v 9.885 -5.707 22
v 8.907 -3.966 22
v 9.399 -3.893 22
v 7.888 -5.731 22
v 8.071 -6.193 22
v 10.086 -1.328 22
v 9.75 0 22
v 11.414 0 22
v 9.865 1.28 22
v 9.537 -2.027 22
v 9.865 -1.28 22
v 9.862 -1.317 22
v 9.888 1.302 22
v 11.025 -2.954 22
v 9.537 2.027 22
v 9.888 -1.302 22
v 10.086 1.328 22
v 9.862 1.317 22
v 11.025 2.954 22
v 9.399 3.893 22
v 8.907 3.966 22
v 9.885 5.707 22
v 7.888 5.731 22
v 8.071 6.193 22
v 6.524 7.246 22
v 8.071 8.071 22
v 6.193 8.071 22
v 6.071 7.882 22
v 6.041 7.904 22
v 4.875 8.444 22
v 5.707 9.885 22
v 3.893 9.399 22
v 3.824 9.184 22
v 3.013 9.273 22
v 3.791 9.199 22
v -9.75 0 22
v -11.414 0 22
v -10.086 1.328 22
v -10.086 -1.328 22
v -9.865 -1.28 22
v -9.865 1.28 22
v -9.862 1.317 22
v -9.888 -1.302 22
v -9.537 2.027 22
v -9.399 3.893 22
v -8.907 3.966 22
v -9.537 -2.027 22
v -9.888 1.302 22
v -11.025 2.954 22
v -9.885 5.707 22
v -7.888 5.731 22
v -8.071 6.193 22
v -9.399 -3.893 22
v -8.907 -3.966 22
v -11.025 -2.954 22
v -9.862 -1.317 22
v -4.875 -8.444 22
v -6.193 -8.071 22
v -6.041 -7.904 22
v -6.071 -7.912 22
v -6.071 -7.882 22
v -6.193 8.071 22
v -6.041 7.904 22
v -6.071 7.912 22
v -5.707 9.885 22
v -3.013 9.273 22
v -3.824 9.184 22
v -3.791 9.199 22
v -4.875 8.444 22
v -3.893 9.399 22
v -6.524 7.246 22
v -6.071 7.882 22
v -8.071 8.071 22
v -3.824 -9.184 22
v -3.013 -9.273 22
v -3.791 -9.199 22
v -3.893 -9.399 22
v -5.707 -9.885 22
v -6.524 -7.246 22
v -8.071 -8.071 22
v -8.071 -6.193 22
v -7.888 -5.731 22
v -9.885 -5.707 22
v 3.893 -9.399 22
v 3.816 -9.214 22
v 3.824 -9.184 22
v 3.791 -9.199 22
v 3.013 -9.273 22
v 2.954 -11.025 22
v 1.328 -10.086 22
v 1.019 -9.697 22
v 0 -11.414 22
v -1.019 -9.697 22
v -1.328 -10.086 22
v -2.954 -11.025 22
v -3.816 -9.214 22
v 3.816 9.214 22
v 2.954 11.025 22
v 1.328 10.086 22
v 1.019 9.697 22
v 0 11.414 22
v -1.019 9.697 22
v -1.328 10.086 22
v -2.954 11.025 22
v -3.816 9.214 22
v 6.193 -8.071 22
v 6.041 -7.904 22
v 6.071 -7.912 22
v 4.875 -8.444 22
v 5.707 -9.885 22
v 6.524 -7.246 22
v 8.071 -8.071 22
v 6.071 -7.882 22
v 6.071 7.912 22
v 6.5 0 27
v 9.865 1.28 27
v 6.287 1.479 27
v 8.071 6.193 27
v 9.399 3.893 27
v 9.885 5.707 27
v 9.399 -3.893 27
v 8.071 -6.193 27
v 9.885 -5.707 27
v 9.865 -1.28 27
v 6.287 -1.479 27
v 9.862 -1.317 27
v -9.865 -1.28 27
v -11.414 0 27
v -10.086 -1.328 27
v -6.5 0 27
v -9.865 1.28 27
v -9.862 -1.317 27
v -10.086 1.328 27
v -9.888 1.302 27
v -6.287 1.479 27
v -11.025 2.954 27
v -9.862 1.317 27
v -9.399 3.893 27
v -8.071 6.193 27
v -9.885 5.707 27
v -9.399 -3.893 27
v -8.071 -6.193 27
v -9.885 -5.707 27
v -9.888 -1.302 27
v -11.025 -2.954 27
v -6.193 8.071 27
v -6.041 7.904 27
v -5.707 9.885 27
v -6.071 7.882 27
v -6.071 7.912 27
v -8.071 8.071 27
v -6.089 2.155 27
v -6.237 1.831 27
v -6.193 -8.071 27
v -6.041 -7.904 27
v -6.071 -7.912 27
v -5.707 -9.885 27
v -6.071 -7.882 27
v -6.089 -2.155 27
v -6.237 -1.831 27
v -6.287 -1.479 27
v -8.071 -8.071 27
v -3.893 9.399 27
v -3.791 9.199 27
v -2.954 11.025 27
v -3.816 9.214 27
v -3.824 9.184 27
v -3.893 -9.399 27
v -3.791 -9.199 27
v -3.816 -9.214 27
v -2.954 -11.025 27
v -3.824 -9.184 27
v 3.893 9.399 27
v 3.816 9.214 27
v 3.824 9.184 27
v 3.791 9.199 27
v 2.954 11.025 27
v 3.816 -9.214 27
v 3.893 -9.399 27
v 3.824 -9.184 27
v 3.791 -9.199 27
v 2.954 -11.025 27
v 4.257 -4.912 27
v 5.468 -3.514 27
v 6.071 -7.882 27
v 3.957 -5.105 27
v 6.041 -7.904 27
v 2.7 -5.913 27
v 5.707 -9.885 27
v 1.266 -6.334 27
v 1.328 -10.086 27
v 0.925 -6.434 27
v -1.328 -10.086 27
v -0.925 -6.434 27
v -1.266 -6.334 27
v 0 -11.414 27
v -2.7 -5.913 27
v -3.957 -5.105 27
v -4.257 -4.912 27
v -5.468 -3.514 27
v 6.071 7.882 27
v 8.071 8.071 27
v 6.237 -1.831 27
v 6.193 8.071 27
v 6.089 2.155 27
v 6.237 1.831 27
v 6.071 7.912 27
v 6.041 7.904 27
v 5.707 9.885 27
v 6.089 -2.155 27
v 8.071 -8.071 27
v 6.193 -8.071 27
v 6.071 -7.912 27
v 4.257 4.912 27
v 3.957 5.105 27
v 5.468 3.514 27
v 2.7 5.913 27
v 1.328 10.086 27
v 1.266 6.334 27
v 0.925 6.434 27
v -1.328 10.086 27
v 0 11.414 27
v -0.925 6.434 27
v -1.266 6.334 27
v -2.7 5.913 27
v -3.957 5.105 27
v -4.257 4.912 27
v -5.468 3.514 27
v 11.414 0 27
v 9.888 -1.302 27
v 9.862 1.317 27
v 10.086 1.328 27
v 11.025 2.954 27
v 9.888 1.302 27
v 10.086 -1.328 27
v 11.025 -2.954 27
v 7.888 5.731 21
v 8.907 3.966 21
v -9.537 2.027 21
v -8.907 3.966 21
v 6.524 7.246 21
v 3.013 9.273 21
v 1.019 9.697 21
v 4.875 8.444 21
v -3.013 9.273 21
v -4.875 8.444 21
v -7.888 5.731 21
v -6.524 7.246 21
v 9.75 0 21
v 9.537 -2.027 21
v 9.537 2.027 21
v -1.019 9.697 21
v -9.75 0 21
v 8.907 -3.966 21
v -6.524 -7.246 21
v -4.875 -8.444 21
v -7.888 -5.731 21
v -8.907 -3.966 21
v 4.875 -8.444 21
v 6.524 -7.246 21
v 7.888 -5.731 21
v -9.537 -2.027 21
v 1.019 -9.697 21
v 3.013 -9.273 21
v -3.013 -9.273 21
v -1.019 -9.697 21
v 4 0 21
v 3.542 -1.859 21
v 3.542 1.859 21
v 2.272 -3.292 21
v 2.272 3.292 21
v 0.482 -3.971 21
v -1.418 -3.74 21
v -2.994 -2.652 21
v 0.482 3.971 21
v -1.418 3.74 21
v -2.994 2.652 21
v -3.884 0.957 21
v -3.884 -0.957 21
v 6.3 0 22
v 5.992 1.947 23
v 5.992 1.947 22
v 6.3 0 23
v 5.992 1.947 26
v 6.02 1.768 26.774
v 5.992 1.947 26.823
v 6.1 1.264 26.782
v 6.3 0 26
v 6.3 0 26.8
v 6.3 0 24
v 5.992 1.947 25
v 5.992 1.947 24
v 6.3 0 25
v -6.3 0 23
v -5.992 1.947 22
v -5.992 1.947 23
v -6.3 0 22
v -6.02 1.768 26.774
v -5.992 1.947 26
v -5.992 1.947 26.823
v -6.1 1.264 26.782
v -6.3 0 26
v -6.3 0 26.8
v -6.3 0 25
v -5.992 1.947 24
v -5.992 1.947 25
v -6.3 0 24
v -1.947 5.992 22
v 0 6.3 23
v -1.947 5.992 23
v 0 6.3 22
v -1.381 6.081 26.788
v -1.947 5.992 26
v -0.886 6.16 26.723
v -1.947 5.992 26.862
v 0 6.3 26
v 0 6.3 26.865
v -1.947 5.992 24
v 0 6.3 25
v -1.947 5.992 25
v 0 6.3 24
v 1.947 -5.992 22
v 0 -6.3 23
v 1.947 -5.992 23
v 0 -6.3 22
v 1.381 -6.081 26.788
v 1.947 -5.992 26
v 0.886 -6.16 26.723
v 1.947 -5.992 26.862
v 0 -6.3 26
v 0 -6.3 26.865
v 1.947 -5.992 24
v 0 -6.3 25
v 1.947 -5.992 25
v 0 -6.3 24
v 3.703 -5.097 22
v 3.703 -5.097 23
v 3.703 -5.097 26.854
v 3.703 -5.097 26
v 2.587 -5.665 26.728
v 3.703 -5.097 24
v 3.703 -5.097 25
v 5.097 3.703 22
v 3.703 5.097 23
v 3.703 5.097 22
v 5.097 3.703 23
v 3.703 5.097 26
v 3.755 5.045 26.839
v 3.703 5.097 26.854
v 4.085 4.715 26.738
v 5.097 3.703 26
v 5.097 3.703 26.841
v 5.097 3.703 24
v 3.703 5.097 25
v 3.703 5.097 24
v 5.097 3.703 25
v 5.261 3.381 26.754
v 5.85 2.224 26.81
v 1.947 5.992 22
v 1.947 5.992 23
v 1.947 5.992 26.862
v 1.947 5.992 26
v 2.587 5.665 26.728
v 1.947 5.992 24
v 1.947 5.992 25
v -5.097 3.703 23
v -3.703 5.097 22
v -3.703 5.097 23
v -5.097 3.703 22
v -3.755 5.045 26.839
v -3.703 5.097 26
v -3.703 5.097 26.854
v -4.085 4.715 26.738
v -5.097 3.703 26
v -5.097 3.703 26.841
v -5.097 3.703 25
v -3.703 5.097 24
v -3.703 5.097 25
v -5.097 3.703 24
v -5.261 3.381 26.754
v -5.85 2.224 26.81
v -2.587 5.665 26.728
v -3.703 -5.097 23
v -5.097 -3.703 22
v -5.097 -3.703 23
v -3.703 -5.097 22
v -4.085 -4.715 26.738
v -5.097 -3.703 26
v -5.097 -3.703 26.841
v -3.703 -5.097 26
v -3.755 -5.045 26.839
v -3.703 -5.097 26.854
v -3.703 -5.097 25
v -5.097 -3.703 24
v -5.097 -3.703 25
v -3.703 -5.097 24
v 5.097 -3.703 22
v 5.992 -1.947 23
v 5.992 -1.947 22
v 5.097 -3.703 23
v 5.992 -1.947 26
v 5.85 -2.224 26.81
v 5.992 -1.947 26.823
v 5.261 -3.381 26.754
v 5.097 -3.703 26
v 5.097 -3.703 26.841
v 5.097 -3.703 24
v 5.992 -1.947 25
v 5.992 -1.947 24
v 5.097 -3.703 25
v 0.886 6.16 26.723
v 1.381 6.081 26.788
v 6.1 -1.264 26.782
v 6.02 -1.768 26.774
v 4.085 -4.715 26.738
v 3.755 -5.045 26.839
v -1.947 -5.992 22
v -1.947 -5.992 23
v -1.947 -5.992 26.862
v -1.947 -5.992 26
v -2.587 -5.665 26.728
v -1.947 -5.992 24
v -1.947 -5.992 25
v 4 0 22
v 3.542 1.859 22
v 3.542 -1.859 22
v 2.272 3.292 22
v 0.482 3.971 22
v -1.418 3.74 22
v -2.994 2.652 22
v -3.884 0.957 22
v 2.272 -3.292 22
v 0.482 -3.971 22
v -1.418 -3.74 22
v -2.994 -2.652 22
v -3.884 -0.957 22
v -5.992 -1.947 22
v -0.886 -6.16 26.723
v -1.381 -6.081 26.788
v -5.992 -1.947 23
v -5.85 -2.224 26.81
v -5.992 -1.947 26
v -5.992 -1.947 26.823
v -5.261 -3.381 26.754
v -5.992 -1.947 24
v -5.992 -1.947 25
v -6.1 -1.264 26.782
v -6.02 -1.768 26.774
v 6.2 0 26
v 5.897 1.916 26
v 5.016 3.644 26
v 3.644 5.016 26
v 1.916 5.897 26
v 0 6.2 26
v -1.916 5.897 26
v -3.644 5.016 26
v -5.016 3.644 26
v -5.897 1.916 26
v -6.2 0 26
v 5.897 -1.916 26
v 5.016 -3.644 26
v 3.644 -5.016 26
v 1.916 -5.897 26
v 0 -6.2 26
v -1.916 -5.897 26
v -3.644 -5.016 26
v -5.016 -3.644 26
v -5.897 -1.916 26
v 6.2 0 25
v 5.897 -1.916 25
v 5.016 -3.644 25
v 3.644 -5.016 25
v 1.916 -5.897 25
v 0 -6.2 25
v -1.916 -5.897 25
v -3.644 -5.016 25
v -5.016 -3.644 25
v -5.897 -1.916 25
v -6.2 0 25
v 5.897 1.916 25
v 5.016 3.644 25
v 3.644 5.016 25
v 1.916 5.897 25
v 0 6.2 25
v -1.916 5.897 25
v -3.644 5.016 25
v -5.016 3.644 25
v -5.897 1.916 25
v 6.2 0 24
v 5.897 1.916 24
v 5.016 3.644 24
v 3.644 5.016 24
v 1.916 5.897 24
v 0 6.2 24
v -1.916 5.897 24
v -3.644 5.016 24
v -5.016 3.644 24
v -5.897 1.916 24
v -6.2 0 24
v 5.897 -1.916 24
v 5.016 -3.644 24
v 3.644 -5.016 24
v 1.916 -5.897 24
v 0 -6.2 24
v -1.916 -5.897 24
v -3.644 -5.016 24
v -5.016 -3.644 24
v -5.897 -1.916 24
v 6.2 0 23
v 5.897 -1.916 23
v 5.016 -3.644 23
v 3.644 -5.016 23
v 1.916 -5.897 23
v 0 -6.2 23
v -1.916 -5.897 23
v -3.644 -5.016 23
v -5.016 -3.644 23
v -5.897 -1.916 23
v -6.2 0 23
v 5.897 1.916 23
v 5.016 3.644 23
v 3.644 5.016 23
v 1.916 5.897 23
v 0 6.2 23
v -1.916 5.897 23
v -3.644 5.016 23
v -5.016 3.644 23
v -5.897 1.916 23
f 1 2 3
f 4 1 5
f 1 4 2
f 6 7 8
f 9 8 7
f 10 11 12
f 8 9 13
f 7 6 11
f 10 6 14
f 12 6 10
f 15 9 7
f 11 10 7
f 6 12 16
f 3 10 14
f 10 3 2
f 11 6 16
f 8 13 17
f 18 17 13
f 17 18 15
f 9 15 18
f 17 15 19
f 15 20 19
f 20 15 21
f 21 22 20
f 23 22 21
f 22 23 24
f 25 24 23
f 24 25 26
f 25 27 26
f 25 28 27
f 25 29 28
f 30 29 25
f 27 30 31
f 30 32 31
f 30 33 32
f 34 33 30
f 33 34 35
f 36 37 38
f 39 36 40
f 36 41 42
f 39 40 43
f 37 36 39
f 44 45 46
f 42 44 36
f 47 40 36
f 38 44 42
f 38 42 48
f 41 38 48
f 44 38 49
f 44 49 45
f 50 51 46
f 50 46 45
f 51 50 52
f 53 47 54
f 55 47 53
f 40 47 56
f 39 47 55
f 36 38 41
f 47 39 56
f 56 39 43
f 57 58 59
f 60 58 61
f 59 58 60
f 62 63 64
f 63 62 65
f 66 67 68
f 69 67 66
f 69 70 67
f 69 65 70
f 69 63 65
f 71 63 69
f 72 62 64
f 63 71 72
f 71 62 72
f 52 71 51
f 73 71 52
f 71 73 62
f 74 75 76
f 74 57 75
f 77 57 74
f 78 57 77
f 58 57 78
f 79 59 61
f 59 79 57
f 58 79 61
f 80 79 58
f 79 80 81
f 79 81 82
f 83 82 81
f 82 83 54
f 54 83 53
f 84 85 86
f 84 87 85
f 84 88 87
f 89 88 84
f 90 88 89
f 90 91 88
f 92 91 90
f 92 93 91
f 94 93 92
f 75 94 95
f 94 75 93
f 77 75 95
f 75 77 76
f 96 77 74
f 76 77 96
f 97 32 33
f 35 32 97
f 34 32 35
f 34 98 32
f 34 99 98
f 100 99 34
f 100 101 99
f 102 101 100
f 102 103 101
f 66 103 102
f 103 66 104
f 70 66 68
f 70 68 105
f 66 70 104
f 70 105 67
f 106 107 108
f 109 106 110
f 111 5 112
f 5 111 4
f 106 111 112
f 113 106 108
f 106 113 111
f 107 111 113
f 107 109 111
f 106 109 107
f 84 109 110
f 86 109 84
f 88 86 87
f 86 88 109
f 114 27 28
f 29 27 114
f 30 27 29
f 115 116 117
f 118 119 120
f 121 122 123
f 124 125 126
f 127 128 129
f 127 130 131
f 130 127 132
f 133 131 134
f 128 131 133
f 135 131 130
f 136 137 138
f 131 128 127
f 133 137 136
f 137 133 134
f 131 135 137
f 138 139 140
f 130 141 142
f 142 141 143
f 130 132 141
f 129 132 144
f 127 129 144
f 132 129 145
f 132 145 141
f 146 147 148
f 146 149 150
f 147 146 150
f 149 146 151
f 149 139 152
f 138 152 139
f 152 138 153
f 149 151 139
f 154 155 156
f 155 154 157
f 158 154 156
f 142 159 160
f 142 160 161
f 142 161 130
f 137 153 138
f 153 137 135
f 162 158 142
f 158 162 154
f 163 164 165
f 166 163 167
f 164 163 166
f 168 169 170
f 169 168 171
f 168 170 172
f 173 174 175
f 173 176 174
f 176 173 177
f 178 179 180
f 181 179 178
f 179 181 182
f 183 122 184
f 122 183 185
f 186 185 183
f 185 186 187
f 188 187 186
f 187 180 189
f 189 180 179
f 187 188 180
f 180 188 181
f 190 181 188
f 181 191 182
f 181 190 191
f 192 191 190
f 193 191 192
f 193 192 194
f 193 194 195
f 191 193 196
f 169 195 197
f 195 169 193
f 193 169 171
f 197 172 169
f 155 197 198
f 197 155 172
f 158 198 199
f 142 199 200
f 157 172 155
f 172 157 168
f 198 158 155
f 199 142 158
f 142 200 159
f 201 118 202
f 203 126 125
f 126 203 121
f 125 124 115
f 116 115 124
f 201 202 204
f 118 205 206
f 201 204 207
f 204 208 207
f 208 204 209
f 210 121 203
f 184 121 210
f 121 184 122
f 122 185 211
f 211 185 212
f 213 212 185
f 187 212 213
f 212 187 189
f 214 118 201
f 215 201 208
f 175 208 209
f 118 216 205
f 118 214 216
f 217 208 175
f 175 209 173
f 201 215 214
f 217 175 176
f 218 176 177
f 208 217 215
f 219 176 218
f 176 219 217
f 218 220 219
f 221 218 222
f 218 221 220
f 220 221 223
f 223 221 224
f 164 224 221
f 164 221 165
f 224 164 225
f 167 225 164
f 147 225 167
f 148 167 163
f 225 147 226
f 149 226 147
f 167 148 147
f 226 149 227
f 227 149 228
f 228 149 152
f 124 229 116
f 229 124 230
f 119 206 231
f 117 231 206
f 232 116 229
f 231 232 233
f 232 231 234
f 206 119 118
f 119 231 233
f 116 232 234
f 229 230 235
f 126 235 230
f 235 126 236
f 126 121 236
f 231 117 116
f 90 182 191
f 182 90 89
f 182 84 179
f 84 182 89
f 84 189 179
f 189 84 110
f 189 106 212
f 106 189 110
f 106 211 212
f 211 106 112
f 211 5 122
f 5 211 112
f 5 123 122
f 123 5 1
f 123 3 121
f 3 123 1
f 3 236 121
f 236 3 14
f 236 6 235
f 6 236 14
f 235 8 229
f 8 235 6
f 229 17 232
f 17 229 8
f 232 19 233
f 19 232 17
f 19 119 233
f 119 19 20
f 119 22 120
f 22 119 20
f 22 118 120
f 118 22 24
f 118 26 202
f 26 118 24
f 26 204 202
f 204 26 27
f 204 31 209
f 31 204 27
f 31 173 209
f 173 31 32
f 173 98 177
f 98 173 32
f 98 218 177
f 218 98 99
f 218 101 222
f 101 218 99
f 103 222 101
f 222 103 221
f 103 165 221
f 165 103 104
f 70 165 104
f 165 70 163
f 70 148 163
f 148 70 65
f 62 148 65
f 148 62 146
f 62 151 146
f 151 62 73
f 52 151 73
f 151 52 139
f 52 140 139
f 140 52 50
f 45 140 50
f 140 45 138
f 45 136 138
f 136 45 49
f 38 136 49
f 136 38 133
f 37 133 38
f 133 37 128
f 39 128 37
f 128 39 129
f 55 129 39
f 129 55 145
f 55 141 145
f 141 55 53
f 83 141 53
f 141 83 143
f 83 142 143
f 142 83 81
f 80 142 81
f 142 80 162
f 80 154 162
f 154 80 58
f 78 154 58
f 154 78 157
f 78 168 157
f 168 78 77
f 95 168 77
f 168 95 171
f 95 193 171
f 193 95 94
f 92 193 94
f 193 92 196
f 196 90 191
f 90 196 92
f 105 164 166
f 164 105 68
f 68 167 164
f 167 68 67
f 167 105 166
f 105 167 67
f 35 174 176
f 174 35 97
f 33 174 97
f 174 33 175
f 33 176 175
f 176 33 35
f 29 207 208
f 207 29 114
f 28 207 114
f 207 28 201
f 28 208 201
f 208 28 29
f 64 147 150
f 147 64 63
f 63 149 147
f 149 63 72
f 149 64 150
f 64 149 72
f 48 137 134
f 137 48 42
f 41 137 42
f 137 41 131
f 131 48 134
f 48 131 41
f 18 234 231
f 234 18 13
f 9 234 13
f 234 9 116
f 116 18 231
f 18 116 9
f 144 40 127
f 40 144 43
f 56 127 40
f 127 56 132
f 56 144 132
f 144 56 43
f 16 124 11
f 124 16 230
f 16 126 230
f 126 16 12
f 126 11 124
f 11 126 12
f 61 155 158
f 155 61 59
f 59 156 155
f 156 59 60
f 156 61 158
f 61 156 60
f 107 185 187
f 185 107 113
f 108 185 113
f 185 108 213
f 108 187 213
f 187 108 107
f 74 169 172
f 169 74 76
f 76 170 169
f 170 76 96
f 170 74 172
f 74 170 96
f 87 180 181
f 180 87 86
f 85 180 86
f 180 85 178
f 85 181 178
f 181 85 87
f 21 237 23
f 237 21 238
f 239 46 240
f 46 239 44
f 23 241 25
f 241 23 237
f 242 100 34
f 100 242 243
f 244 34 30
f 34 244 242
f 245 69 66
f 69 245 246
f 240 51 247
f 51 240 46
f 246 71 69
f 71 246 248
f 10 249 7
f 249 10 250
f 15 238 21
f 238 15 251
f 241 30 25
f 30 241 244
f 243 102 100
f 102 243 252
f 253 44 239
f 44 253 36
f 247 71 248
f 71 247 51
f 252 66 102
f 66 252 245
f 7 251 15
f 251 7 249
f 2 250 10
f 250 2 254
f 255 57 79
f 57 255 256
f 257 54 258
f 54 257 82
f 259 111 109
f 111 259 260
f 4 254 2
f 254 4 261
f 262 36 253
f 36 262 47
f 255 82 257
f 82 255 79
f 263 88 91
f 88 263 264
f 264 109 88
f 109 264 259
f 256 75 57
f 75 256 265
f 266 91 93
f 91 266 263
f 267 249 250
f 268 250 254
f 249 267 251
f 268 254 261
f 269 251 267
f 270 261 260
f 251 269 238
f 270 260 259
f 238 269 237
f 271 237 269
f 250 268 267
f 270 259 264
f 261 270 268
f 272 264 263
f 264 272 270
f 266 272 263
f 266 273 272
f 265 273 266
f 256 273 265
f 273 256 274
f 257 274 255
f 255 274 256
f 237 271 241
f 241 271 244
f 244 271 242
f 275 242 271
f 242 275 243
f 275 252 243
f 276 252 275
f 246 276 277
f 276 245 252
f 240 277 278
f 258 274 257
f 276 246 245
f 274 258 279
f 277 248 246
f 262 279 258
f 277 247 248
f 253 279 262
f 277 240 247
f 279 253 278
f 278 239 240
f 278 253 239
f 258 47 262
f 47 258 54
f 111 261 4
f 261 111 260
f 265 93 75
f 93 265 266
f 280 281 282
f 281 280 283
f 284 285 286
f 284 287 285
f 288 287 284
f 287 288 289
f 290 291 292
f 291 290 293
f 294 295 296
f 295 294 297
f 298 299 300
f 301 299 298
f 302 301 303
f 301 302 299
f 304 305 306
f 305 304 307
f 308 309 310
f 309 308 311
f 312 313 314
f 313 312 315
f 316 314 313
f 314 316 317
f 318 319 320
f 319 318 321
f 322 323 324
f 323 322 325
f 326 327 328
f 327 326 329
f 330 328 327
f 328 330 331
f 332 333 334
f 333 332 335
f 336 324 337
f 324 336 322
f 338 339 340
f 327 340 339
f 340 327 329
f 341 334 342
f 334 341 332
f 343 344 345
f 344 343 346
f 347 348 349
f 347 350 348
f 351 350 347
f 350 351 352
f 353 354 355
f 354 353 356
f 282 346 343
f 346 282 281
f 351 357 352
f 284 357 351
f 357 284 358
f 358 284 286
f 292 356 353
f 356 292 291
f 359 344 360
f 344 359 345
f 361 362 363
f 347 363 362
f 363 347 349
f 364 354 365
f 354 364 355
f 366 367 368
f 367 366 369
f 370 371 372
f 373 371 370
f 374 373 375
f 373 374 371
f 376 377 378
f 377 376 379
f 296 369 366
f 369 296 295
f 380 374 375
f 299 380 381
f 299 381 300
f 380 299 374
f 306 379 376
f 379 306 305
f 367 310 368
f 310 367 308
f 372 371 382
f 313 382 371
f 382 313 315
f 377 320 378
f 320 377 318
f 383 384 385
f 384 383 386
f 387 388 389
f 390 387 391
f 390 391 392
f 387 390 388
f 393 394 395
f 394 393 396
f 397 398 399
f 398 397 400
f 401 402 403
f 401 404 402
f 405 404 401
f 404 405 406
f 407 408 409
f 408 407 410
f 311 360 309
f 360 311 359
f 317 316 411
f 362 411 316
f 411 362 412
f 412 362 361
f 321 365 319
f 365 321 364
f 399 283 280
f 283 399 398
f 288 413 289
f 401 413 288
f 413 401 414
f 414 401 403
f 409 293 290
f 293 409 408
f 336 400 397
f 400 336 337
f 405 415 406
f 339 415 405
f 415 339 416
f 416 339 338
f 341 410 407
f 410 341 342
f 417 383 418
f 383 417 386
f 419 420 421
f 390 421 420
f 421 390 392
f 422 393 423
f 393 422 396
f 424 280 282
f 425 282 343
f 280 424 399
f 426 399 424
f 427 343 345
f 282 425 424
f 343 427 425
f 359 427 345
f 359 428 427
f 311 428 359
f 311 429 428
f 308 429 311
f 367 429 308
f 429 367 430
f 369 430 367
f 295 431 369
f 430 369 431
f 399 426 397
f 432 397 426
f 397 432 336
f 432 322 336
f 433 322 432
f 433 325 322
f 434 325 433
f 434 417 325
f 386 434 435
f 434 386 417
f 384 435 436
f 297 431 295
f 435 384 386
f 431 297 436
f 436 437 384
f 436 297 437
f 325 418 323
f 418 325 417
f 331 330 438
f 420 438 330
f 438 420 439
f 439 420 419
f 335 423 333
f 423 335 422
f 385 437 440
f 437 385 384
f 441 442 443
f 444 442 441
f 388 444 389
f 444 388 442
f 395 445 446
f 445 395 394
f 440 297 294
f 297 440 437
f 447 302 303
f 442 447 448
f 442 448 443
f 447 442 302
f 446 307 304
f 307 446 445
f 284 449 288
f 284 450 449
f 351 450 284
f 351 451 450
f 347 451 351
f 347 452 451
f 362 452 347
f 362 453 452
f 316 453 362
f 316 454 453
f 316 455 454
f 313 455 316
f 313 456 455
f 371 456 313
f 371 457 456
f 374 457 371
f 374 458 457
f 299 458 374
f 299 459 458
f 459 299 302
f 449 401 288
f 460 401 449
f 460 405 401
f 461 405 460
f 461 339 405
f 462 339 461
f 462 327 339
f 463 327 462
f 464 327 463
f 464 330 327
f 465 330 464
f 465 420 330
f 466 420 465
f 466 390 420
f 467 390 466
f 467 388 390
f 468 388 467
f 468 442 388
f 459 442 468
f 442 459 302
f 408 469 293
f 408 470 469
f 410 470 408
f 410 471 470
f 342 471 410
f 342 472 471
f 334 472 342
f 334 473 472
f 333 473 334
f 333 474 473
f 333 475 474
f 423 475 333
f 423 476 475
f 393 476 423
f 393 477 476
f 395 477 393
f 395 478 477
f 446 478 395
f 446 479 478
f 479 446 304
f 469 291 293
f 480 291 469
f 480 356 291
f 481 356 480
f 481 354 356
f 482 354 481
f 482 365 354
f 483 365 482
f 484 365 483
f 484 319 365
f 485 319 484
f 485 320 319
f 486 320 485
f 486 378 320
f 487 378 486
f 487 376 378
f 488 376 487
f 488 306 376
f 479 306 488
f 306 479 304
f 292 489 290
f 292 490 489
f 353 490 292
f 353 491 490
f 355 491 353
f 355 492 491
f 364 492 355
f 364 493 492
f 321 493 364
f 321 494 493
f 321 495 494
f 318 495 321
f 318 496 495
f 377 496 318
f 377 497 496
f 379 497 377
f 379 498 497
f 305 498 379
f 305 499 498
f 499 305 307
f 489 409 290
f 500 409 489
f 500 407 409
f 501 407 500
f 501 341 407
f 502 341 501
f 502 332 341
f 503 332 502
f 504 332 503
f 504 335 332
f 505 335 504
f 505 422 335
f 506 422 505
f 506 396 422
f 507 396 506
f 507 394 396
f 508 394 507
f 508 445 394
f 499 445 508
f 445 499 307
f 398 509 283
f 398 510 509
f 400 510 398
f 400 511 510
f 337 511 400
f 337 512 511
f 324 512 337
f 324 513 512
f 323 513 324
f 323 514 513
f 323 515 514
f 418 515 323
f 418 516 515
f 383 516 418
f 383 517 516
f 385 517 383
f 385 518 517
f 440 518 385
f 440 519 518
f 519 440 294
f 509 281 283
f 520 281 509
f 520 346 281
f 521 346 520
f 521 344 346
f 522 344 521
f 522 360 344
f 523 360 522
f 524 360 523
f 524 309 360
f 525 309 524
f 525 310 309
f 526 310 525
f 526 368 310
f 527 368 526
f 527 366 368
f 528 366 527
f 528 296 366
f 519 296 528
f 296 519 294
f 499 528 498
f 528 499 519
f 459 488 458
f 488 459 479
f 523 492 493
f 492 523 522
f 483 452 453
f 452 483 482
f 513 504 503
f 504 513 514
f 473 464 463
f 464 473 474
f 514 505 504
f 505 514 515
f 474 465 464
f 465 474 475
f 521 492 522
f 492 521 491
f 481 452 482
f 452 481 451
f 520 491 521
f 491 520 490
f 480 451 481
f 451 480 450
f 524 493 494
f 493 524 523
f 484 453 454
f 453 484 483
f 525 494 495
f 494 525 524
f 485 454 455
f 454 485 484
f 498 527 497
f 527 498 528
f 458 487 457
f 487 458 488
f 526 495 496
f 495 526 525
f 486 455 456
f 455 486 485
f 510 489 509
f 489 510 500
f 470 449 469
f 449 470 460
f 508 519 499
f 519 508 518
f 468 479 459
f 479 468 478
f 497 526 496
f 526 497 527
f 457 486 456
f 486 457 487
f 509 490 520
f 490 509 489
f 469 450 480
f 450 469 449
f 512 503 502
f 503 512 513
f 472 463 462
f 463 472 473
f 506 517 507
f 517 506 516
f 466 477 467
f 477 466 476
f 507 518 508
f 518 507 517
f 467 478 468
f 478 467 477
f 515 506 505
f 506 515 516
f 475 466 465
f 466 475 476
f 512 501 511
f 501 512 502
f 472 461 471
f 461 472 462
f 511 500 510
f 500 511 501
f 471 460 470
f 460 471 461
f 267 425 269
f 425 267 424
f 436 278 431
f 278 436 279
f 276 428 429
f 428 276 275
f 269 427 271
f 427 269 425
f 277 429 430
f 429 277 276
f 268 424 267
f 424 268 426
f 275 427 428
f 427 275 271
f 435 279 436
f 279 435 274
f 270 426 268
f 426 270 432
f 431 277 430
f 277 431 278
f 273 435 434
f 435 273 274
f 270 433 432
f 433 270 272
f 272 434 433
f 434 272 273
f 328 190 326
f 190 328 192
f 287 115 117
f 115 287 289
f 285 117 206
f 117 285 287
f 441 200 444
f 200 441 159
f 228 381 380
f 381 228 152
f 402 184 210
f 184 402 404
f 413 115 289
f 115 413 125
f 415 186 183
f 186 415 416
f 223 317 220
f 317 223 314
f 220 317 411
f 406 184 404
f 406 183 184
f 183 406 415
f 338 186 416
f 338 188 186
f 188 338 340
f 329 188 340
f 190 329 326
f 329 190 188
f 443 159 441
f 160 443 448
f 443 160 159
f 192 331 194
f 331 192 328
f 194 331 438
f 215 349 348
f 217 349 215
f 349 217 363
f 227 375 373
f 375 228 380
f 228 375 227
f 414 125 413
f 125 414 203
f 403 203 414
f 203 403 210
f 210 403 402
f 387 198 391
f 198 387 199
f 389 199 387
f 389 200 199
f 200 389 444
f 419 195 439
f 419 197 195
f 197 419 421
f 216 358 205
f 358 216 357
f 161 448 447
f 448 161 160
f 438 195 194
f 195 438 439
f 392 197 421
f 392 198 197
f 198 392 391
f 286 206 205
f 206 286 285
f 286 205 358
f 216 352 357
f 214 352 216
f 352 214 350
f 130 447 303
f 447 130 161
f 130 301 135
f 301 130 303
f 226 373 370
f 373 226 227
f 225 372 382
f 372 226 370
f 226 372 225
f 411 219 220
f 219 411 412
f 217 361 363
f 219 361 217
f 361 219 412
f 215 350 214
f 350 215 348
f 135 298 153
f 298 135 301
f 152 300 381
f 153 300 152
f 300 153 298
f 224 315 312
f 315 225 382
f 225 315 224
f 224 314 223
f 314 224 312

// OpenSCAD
FocusWheel();

module FocusWheel() {
    translate([0, 0, 22])difference() {
        union() {
            linear_extrude(5, convexity=2) union() {
                circle(r=10);
                for(a=[0:15:359.9]) rotate(a) {
                    translate([10,0]) rotate(45) square(2, true);
                }
            }
            translate([0,0,-1])cylinder(d=19.5, h=1);
        }    
        difference() {
            cylinder(d=12.6, h=8);
            translate([0,0,3.5]) cube([100,100,1], true);
            translate([0,0,1.5]) cube([100,100,1], true);
        }
        
        cylinder(d=12.4, h=8);
        cylinder(d=8, h=8, center= true);
        translate([0,0,3.5]) cylinder(d1=10, d2=14, h=2);
    }
}
